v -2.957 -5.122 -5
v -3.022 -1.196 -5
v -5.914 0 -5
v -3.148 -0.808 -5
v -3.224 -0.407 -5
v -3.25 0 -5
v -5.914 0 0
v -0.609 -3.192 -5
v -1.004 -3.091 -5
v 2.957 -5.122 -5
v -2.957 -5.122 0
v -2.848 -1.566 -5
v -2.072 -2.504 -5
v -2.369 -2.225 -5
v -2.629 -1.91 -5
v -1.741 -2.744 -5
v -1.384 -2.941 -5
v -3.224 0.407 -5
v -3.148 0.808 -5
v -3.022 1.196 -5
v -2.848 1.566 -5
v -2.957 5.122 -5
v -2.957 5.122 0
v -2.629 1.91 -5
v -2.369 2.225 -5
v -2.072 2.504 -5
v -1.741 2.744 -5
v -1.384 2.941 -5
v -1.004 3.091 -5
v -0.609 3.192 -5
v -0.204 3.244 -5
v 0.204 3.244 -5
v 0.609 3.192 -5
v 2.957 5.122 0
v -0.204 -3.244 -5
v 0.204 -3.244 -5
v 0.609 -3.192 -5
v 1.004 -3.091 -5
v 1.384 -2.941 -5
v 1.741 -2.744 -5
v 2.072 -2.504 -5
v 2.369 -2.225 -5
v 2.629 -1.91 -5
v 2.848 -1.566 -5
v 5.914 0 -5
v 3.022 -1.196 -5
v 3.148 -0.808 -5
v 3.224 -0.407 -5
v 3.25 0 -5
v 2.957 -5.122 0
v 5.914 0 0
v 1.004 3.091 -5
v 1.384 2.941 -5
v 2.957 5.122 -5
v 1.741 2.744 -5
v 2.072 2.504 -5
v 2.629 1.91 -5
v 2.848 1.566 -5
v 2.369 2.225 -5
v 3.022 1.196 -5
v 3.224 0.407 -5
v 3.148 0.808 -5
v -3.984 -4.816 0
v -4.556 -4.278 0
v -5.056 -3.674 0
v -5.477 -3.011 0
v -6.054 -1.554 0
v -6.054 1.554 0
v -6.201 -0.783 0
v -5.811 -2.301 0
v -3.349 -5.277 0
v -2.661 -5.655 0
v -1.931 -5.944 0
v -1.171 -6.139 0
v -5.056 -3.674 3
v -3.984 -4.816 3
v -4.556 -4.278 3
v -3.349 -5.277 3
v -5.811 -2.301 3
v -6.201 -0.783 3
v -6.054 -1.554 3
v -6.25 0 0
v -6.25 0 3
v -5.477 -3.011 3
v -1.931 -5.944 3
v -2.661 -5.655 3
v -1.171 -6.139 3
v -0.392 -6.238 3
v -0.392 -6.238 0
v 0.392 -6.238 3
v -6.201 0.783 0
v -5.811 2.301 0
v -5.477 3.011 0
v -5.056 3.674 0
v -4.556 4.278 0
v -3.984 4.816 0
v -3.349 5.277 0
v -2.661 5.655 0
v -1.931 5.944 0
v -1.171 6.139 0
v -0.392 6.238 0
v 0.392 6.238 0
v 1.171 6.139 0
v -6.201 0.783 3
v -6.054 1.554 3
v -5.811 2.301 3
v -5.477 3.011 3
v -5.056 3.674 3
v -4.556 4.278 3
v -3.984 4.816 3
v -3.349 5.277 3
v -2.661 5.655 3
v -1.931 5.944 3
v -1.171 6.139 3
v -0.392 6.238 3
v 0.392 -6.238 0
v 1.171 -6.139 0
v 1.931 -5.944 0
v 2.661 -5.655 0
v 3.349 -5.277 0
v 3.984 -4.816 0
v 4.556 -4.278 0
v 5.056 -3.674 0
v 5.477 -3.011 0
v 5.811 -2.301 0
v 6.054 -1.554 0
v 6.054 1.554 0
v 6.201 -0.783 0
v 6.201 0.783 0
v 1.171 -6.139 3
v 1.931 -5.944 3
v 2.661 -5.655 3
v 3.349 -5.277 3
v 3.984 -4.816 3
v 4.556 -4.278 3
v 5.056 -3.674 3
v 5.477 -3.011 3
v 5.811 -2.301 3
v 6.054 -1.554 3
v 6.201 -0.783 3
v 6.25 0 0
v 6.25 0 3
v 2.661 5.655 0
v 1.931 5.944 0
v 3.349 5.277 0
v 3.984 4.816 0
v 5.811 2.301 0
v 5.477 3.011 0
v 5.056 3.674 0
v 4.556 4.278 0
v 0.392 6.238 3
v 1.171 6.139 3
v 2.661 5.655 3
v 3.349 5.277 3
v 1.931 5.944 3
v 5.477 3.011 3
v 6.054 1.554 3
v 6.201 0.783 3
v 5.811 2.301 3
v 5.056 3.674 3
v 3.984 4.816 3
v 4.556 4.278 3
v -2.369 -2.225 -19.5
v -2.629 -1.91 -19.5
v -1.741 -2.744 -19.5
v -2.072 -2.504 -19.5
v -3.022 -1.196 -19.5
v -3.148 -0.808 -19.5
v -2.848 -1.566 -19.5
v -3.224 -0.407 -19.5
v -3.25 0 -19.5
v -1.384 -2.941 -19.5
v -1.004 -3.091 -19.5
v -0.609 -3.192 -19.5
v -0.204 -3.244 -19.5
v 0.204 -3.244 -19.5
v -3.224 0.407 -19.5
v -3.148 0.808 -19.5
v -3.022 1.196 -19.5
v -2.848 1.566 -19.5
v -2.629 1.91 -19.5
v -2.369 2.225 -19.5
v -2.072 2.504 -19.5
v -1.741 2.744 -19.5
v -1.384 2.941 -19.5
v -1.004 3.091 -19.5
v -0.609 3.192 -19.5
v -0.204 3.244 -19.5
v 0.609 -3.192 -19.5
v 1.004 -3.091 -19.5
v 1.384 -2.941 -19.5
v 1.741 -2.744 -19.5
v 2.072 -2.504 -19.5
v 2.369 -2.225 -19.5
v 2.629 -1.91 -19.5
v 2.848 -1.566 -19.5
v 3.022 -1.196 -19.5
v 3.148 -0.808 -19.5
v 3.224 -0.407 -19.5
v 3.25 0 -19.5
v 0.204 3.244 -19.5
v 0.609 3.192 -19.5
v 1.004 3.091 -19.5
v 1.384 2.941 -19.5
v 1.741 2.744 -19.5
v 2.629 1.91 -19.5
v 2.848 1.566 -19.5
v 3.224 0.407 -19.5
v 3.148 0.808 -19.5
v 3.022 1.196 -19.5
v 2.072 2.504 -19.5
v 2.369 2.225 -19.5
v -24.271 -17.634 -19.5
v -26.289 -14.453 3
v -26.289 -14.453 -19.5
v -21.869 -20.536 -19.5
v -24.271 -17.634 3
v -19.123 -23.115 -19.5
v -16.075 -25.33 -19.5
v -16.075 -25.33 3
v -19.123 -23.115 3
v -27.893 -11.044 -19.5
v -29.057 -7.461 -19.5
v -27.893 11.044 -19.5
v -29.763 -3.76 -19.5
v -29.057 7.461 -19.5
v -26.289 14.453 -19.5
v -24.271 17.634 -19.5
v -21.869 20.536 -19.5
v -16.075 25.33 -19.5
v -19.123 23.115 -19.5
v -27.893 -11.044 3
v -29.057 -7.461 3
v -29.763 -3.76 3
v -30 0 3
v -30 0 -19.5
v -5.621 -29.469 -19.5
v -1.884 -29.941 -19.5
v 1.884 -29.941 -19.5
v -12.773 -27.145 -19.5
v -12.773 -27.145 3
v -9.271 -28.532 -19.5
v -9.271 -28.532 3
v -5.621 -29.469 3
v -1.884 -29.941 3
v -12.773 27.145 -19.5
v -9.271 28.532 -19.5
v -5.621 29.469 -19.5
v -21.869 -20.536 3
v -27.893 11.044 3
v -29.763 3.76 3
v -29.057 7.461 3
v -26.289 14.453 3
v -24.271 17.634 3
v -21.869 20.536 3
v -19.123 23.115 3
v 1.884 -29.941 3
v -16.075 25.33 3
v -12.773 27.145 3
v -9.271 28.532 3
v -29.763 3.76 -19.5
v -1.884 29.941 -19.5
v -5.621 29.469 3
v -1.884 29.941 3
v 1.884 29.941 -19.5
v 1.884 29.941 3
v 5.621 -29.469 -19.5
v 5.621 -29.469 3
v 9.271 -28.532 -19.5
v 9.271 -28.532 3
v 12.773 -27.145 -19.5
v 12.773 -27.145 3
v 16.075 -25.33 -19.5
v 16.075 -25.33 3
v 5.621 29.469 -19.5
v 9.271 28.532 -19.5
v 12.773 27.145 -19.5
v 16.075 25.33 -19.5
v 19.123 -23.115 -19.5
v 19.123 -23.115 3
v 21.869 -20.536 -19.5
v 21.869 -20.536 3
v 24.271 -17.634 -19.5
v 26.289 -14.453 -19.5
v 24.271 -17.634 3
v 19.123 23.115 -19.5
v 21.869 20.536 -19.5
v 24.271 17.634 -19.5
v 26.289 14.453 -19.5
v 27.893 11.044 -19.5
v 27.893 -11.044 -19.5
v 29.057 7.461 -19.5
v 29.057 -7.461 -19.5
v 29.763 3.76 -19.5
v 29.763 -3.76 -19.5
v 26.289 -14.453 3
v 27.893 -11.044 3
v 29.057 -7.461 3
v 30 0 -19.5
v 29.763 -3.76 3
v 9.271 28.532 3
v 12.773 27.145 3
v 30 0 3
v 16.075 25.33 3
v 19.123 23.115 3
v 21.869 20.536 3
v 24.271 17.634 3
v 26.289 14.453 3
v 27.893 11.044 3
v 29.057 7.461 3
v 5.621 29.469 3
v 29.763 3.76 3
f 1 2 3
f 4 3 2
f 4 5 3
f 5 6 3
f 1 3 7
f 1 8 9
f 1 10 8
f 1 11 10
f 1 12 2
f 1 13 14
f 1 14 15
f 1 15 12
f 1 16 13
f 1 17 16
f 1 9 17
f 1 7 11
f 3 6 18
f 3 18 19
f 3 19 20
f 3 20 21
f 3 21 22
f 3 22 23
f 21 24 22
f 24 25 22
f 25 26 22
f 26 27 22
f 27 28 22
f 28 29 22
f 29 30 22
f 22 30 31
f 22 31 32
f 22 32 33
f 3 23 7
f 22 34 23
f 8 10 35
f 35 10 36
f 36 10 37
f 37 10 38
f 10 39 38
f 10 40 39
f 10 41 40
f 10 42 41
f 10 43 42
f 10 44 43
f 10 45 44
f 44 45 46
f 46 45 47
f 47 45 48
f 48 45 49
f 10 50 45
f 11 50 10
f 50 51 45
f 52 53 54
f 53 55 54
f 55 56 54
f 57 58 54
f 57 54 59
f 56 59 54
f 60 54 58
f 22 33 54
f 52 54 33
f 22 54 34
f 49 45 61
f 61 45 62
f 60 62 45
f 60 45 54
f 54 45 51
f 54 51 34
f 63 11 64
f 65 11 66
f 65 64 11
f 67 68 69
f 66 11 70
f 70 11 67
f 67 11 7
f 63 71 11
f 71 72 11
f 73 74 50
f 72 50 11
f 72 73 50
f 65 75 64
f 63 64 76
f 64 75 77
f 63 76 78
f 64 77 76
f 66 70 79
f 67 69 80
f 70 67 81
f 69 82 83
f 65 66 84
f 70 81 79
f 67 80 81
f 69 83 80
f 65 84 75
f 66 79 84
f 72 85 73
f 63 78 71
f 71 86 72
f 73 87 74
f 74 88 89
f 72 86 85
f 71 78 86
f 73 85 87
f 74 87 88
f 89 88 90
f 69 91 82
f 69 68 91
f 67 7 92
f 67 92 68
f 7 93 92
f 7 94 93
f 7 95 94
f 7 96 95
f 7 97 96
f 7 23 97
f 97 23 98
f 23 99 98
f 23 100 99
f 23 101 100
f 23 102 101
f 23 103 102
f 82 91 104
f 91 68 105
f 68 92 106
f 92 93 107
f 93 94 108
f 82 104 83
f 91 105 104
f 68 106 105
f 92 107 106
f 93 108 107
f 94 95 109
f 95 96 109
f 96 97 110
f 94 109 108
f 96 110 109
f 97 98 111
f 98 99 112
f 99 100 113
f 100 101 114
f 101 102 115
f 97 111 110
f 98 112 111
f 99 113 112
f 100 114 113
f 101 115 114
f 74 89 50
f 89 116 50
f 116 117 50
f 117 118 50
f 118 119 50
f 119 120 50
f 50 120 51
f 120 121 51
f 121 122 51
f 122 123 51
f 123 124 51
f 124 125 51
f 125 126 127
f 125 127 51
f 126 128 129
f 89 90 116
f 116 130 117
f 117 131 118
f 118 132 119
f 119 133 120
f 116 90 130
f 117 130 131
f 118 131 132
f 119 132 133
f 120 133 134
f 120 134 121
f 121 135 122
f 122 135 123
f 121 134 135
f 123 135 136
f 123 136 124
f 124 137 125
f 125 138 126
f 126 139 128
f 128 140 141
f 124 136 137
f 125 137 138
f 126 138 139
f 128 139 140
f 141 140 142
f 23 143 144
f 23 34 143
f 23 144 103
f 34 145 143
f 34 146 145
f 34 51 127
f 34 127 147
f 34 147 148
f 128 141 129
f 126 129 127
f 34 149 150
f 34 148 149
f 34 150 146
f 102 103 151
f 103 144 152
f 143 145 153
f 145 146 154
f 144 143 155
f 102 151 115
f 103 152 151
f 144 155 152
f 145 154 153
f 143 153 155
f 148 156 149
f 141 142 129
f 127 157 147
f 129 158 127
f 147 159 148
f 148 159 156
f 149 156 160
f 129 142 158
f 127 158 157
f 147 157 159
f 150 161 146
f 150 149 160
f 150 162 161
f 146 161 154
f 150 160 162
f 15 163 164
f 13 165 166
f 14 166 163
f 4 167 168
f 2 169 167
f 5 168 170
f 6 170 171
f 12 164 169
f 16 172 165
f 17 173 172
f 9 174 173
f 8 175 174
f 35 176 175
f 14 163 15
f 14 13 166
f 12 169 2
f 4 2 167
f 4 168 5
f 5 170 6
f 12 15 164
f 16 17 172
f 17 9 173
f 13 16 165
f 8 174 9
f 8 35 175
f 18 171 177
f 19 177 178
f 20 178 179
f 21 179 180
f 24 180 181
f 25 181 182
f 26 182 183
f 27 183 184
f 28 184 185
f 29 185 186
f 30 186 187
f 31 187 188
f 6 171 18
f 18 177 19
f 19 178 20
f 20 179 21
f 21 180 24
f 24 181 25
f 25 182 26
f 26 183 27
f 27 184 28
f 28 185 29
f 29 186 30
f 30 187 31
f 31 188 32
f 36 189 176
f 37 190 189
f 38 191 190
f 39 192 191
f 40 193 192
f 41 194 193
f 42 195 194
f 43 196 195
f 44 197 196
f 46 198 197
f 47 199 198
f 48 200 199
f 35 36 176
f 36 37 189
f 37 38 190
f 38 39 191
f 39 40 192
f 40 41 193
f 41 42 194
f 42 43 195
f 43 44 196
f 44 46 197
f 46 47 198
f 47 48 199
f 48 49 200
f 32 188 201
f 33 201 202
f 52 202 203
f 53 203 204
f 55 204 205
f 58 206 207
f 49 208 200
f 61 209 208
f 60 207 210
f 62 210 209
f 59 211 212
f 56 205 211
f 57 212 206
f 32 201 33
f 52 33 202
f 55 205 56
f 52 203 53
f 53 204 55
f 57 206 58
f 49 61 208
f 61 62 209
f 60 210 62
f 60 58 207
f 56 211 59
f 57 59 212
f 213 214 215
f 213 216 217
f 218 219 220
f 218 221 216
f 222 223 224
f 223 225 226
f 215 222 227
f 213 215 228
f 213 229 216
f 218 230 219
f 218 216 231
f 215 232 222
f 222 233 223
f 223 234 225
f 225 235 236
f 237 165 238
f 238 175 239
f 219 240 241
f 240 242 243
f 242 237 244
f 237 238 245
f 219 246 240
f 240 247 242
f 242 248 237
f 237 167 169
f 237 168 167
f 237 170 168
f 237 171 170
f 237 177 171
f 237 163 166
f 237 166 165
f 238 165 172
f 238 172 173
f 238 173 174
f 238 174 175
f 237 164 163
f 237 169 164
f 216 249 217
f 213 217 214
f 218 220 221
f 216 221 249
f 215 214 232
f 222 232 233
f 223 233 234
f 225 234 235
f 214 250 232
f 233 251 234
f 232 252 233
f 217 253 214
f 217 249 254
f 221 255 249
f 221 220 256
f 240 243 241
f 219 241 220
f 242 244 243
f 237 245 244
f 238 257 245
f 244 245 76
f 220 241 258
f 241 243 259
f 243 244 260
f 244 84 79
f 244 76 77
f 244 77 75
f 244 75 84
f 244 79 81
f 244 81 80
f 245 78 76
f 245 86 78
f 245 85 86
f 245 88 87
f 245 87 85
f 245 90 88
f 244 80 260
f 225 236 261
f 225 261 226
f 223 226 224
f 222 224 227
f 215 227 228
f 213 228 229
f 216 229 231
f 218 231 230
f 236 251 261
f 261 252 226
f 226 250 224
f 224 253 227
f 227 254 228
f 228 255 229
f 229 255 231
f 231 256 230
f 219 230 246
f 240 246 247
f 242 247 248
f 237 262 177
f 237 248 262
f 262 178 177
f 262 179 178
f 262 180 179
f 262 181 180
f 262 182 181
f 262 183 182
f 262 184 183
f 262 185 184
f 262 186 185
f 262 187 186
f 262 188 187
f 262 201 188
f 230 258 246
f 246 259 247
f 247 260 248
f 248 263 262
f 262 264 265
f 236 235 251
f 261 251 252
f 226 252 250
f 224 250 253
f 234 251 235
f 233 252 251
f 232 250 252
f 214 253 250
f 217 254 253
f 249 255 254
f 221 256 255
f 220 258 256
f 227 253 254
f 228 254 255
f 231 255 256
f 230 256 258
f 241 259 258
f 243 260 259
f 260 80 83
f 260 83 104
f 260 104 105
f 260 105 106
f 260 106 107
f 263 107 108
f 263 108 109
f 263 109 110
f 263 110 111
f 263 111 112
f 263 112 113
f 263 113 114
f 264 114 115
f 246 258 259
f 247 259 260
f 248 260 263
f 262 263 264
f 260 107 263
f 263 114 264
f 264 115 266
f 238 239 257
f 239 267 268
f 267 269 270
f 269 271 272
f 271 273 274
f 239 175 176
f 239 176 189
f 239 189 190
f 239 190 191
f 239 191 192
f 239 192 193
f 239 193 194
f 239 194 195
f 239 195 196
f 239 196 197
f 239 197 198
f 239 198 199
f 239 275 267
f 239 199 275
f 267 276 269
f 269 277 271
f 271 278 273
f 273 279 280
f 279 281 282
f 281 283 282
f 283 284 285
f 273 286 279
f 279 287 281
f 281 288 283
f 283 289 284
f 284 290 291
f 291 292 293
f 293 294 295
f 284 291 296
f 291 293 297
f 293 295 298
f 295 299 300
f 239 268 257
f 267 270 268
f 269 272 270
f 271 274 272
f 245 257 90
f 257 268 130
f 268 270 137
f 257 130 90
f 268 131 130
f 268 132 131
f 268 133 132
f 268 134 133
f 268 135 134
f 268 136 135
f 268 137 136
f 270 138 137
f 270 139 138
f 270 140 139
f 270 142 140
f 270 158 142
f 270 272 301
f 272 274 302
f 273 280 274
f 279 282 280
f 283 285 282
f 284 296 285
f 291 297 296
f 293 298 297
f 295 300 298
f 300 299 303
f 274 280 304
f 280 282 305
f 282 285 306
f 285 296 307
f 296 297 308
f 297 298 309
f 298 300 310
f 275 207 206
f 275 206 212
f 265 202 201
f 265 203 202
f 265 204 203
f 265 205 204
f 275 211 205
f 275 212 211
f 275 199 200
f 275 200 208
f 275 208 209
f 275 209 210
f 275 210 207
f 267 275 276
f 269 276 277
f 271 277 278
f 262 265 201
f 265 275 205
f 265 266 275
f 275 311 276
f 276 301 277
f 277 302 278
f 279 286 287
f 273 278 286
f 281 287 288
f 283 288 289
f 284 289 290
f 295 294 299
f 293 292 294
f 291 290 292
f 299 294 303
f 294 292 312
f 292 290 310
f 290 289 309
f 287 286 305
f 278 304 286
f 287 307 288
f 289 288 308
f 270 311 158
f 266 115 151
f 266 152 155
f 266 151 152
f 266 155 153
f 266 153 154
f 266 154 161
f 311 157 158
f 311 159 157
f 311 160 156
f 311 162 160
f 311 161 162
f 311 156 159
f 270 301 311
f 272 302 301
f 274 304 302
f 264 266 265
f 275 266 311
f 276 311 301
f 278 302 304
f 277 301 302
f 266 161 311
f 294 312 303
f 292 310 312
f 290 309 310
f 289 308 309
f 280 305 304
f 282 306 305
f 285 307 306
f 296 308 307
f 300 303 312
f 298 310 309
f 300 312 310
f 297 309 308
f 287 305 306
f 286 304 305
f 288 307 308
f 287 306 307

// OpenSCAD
$fn = 50;


difference() {
	union() {
		translate(v = [0, 0, -19.5000000000]) {
			cylinder(h = 22.5000000000, r = 30.0000000000);
		}
	}
	union() {
		translate(v = [0, 0, 0]) {
			rotate(a = [0, 0, 0]) {
				difference() {
					union() {
						translate(v = [0, 0, -5]) {
							linear_extrude(height = 5) {
								polygon(points = [[5.9142500000, 0.0000000000], [2.9571250000, 5.1218907443], [-2.9571250000, 5.1218907443], [-5.9142500000, 0.0000000000], [-2.9571250000, -5.1218907443], [2.9571250000, -5.1218907443]]);
							}
						}
					}
					union();
				}
			}
		}
		#cylinder(h = 3, r = 6.2500000000);
		#translate(v = [0, 0, -100.0000000000]) {
			cylinder(h = 200, r = 3.2500000000);
		}
	}
}
